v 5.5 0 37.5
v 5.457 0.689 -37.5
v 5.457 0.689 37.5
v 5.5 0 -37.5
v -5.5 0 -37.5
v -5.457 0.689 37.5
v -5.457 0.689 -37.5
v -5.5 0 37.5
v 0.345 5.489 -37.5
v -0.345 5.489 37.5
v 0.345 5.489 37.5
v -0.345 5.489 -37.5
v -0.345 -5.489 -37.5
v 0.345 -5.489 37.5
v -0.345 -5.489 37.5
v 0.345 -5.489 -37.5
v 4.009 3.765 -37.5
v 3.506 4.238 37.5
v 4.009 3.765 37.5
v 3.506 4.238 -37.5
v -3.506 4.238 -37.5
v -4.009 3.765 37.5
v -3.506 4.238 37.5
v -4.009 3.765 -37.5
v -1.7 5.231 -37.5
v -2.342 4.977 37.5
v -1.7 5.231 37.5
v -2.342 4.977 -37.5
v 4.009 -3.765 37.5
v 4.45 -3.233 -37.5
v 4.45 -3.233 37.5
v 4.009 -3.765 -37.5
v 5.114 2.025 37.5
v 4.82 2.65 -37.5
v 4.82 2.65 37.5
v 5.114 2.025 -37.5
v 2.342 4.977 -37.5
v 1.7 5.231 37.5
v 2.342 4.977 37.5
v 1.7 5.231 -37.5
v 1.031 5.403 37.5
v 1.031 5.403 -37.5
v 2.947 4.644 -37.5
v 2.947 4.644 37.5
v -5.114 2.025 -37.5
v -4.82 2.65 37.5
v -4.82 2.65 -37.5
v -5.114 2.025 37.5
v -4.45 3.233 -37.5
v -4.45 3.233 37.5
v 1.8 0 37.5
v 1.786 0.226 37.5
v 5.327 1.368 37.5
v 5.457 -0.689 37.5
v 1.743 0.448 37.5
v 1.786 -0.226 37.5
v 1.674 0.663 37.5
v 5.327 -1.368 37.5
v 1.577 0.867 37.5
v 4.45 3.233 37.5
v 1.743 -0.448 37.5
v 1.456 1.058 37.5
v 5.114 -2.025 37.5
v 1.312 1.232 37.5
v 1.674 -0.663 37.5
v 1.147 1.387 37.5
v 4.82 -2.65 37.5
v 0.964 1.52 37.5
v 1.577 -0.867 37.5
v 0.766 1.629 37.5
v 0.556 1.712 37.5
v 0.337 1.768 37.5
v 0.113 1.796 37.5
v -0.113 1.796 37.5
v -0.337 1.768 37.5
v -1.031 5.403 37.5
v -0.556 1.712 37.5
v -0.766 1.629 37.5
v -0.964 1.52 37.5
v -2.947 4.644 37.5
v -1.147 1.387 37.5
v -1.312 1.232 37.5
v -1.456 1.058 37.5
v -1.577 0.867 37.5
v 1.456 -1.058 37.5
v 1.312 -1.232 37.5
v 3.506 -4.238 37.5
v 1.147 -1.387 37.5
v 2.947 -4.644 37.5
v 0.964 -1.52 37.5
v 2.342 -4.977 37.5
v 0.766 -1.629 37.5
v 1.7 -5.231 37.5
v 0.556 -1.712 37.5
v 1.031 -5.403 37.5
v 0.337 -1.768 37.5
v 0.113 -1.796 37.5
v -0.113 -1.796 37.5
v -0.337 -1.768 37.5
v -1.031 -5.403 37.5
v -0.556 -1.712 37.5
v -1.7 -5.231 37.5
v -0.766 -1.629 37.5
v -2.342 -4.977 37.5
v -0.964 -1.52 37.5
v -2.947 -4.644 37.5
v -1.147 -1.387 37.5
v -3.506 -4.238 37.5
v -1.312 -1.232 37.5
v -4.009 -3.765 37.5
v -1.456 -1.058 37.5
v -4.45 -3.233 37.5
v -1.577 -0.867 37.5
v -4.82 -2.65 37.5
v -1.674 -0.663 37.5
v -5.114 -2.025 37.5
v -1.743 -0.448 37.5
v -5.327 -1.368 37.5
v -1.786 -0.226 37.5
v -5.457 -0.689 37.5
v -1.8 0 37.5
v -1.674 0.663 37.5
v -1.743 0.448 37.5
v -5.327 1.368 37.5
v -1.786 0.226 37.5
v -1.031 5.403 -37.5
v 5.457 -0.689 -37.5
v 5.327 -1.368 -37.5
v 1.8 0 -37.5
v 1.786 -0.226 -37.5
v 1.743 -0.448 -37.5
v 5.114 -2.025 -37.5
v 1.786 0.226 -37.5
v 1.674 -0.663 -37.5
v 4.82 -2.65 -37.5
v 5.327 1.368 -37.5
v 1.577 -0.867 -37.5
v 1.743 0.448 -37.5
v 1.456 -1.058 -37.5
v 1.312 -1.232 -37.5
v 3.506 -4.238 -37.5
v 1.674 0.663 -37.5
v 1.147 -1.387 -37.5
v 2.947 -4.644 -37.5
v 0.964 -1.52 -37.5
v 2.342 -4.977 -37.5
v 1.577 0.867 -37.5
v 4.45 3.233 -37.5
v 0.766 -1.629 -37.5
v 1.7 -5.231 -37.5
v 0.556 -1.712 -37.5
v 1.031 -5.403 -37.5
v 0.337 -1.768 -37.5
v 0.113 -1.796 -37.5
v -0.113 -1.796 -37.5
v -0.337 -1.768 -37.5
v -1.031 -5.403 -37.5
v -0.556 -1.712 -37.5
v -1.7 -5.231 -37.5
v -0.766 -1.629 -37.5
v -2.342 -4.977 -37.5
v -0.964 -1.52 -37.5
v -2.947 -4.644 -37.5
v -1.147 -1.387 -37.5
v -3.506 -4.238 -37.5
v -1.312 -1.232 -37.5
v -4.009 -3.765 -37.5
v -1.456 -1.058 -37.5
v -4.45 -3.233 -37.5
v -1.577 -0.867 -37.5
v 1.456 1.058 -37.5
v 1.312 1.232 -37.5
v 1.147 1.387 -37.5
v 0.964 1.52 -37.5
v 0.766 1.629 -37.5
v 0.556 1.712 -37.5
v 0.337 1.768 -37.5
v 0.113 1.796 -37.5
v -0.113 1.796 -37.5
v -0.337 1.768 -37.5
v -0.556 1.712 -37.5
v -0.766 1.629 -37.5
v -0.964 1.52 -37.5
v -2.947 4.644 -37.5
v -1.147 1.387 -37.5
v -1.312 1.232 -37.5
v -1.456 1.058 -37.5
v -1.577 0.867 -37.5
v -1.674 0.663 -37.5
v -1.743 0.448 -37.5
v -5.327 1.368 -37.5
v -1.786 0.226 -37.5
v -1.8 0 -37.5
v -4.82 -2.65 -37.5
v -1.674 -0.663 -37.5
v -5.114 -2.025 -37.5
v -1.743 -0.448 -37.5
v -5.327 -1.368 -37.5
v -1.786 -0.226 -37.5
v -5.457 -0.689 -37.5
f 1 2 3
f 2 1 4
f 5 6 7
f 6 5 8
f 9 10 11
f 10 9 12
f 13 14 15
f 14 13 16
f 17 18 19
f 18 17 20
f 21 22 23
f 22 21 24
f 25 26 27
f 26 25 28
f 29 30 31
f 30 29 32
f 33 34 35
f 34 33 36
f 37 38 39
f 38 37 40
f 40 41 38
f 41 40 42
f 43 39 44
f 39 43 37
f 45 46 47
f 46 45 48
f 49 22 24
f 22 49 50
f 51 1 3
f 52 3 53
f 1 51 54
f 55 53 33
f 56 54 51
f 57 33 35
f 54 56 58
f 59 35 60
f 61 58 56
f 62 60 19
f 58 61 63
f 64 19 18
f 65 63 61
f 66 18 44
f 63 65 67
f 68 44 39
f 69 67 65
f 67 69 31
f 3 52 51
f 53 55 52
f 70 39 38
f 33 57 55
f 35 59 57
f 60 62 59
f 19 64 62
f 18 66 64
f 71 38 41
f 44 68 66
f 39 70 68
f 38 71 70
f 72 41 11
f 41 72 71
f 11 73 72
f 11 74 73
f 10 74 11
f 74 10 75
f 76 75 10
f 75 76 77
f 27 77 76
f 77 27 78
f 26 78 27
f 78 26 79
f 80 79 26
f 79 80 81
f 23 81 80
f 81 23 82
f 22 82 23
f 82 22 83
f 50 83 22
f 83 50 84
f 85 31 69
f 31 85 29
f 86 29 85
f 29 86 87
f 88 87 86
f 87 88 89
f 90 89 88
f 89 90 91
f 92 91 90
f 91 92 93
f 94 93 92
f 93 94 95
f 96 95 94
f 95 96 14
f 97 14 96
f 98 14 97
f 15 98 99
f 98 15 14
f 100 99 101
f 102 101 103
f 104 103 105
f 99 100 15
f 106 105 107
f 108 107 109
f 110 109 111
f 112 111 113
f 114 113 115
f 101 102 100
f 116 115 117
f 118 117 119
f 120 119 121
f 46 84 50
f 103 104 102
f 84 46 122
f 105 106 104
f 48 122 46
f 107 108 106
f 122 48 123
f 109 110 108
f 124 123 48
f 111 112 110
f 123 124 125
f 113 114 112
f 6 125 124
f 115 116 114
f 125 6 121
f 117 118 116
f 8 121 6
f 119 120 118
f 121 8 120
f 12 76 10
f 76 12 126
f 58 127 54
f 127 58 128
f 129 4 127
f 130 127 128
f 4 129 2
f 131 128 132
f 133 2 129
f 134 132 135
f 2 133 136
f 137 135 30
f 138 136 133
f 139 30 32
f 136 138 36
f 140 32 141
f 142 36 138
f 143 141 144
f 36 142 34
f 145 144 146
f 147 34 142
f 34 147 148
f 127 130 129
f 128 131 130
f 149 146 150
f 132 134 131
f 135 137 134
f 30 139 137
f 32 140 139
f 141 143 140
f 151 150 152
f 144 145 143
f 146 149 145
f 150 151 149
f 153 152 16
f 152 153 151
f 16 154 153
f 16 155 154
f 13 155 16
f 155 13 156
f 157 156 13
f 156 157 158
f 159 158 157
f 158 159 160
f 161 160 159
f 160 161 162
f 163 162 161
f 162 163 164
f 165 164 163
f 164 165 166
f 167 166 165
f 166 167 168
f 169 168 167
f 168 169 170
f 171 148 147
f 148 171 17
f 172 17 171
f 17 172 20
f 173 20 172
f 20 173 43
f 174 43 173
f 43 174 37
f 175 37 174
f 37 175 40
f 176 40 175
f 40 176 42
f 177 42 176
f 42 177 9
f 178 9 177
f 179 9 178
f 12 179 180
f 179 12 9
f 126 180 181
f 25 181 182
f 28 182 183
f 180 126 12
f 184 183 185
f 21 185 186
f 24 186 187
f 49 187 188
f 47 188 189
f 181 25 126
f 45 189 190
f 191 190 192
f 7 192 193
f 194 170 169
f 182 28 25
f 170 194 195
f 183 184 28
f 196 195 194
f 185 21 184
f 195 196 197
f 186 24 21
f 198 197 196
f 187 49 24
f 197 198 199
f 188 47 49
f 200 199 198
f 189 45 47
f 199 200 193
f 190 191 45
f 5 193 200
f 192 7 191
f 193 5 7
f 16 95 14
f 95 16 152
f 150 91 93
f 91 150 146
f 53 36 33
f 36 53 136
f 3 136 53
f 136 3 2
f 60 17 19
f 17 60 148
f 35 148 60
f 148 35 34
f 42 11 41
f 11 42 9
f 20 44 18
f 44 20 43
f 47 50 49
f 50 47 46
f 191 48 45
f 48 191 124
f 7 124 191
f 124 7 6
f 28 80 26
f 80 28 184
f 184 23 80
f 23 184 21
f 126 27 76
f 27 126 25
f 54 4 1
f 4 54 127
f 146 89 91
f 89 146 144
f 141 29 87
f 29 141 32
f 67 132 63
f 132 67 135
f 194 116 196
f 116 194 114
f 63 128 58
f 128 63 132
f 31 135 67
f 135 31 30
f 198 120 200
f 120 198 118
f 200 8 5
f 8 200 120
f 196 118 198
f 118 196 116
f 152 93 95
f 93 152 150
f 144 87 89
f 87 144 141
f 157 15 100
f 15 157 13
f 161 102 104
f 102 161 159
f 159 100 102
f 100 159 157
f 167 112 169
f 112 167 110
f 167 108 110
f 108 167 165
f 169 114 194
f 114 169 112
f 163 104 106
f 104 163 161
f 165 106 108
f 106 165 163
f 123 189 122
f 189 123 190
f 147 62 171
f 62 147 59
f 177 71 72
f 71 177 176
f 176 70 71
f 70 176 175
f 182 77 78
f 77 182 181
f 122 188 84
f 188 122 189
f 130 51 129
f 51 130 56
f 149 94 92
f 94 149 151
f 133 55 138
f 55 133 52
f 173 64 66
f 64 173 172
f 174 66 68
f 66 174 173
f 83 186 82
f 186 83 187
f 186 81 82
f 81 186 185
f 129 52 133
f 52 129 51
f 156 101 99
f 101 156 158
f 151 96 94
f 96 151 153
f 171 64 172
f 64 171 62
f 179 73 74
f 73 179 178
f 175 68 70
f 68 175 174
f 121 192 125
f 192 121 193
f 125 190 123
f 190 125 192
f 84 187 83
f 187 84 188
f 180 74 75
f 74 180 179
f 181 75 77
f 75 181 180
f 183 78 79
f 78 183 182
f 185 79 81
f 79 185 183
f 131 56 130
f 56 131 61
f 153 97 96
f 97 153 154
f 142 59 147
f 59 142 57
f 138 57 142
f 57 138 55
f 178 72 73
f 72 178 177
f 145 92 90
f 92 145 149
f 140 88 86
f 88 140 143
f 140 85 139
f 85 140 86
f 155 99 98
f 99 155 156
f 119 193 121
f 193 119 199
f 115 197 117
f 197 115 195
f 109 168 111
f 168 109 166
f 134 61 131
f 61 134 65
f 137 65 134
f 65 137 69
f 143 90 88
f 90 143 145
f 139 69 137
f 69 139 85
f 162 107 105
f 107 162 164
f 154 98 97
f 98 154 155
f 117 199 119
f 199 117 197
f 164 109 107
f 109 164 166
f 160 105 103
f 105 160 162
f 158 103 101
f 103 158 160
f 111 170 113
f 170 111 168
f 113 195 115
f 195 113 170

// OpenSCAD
$fn = 50;


difference() {
	union() {
		translate(v = [0, 0, -37.5000000000]) {
			cylinder(h = 75, r = 5.5000000000);
		}
	}
	union() {
		translate(v = [0, 0, -100.0000000000]) {
			cylinder(h = 200, r = 1.8000000000);
		}
	}
}
